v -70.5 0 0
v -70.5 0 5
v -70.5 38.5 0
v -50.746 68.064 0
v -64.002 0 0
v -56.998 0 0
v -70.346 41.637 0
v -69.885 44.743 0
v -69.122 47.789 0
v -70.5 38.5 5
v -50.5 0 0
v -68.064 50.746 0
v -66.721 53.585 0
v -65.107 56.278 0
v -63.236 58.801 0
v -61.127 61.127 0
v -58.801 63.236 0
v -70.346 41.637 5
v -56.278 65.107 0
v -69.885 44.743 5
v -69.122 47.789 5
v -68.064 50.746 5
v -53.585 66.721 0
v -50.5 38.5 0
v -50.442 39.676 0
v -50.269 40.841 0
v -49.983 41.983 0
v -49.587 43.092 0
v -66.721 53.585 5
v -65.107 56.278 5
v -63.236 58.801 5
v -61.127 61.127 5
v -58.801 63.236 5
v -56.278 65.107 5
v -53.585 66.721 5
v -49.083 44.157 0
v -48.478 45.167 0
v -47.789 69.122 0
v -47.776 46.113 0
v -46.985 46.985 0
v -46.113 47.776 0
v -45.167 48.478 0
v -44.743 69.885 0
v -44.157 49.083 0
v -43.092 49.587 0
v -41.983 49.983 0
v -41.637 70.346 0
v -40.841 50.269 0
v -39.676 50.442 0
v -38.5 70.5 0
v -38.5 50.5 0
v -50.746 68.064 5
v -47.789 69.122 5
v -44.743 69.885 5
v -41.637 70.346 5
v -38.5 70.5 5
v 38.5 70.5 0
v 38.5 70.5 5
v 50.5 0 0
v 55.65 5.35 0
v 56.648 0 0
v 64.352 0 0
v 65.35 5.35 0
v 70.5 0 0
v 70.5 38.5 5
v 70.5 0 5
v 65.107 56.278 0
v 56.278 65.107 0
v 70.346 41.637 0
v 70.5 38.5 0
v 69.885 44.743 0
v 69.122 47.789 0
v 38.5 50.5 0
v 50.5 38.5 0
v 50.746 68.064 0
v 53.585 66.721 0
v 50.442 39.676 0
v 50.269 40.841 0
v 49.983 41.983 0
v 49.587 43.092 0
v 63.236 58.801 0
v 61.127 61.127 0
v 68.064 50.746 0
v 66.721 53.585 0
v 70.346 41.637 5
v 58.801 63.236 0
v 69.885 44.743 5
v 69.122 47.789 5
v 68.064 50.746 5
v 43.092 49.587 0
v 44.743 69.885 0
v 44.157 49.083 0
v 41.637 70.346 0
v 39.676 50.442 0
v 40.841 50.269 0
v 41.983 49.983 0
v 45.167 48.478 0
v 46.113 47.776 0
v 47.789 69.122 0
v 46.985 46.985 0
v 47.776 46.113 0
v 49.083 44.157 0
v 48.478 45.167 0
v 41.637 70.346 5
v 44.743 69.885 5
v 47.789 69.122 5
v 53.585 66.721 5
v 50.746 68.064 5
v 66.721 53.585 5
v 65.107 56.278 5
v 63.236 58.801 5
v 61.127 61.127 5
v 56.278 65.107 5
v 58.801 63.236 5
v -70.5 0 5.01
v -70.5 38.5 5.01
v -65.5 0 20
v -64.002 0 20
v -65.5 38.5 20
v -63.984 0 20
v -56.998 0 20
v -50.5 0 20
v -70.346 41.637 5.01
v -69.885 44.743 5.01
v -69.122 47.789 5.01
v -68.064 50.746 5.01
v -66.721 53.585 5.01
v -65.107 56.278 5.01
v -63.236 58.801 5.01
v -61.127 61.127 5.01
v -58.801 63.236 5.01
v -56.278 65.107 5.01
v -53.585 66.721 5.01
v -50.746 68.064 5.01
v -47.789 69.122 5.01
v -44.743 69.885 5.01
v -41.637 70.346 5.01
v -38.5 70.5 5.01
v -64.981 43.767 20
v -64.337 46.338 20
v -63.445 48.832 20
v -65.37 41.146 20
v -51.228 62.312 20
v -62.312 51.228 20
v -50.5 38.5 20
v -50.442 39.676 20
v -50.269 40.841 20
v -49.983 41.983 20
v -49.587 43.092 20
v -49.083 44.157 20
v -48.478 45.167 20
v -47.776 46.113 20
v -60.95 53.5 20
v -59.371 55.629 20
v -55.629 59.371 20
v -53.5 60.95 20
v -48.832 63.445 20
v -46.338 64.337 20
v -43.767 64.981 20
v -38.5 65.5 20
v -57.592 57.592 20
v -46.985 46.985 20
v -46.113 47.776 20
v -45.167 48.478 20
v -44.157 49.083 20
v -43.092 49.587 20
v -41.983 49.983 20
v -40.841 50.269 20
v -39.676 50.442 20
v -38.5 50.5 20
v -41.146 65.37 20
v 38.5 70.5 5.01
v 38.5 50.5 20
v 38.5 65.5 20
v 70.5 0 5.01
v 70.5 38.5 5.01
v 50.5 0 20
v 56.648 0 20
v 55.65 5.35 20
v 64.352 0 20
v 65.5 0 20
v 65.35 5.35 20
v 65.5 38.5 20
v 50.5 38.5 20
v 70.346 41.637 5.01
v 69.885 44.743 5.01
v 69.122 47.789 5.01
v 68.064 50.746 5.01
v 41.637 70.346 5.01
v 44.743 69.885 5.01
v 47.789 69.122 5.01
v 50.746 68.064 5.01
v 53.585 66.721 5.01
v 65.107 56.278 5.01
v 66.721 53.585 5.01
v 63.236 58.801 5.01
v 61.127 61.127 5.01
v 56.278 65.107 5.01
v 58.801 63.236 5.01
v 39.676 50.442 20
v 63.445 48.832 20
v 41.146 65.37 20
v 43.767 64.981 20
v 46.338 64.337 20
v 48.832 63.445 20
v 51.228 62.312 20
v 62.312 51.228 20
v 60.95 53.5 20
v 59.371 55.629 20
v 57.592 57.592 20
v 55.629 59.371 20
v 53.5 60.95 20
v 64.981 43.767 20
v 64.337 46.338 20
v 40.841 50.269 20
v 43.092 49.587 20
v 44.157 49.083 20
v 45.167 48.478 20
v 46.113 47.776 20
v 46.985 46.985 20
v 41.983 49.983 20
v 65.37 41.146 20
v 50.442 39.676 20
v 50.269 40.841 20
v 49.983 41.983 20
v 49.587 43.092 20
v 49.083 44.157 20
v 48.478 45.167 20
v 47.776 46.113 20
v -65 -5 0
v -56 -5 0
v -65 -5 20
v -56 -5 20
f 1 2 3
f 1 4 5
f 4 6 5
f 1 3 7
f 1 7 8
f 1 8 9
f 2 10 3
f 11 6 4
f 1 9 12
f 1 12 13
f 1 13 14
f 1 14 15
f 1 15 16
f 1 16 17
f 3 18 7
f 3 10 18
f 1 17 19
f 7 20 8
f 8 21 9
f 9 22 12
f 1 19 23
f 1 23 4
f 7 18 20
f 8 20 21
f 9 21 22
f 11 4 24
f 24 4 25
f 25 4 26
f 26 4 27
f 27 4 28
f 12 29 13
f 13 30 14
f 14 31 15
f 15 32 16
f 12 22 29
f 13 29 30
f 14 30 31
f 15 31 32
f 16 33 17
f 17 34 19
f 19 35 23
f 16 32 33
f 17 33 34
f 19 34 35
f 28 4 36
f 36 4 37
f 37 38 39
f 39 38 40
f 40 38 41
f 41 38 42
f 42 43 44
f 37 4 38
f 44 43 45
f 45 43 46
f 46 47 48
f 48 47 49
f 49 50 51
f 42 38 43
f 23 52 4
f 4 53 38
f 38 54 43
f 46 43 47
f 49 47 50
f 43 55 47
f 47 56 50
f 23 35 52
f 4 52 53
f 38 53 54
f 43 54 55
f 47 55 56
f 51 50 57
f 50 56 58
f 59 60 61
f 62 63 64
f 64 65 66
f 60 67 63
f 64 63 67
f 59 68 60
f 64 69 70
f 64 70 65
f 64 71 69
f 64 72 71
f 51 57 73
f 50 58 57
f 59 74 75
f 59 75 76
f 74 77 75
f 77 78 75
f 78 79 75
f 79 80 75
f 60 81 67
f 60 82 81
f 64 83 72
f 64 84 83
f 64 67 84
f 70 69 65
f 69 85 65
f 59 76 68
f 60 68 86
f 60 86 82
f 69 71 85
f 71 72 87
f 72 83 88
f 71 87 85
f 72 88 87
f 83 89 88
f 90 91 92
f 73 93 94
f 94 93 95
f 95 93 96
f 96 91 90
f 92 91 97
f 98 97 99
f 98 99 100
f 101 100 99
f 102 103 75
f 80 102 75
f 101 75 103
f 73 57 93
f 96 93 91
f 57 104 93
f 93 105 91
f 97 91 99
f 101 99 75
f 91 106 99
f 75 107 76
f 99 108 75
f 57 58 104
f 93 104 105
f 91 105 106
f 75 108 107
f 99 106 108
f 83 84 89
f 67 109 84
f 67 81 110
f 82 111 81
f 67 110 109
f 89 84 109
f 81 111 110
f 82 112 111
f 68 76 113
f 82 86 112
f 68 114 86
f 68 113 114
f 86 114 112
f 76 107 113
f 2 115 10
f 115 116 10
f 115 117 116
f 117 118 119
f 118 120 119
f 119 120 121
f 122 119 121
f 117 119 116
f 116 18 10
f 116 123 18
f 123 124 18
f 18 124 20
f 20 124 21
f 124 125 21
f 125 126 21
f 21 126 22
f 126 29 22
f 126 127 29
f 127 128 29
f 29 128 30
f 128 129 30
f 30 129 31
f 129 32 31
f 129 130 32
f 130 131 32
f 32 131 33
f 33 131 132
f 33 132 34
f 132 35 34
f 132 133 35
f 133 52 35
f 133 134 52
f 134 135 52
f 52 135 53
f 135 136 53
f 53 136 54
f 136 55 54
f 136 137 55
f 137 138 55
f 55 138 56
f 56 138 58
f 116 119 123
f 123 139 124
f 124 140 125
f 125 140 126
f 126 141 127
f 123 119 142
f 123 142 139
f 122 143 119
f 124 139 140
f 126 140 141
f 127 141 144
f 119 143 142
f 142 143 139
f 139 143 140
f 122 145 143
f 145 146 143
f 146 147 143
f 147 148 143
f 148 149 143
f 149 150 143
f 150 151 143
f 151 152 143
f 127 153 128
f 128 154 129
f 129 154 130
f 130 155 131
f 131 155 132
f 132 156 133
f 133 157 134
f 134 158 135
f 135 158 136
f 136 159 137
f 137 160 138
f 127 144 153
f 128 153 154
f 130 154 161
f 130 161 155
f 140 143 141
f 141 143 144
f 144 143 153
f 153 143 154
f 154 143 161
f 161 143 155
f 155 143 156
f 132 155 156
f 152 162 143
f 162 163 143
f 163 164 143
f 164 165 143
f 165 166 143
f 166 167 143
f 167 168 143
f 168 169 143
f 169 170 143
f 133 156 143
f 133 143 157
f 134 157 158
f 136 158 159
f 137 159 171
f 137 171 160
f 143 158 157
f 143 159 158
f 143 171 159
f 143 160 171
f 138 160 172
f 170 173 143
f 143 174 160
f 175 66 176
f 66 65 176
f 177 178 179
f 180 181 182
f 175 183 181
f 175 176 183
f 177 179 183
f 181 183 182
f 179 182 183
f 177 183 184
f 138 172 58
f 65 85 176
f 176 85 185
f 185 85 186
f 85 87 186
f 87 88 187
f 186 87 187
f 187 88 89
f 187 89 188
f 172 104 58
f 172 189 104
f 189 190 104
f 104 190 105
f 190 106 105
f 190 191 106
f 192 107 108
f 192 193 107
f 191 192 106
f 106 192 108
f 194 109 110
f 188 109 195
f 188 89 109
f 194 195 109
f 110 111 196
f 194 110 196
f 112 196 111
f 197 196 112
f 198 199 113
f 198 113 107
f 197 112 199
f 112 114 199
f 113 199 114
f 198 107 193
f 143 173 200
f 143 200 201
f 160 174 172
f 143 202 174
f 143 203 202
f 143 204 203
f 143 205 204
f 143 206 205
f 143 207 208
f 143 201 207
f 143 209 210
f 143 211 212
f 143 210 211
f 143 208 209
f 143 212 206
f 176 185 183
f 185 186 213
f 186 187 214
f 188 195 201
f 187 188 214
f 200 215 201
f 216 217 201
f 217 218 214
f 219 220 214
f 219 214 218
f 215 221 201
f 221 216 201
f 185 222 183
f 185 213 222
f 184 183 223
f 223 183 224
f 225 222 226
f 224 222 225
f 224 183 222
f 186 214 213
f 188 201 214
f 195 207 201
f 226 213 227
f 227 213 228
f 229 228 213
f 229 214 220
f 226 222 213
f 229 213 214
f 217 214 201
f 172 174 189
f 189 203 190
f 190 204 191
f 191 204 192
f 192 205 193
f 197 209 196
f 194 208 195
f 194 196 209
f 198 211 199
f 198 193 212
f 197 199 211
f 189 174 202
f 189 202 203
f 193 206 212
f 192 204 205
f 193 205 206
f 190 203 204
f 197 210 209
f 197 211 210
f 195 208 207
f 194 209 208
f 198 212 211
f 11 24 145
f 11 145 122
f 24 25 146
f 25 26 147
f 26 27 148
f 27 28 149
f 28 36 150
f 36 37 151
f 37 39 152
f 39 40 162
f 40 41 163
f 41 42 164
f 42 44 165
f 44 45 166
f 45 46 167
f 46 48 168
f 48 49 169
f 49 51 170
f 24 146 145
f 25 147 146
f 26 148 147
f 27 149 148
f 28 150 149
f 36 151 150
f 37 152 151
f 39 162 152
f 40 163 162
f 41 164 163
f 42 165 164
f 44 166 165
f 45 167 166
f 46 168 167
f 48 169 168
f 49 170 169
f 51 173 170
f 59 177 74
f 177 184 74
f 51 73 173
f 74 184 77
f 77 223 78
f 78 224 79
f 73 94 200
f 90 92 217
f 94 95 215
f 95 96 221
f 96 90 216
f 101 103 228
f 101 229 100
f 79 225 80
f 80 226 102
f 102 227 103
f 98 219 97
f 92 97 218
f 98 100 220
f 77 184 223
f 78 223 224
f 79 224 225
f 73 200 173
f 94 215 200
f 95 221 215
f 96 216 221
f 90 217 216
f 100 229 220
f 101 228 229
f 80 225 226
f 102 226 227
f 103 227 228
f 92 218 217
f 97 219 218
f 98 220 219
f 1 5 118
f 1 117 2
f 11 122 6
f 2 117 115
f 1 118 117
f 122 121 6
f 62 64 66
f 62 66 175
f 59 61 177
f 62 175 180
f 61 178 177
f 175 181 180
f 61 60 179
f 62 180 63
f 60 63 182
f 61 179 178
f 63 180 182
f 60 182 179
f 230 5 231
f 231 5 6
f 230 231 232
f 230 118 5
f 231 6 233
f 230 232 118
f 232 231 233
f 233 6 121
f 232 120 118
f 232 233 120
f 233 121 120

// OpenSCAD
// Version: 0.05
// Description: Parametric dovetail molding with fixed subtraction logic.
// Post: 100x100mm (R10), Height: 20mm, Taper: 20mm (bottom) to 15mm (top).
// Printer: Bambulab A1, Basic PLA, Profile: 0.2mm Strength @BBLA1

// --- Main Parameters ---
post_width = 100;
post_radius = 12;
mold_height = 20;
thick_bottom = 20;
thick_top = 15;
taper_start = 5;

// --- Parametric Dovetail Settings ---
dt_depth = 5;          
dt_neck_width = 7;     
dt_flare_width = 9;    
joint_tol = 0.35;       
tolerance = 1;       

// Centering the dovetail in the bottom thickness
dovetail_x_pos = (post_width + tolerance) / 2 + (thick_bottom / 2);

$fn = 64;

// --- Modules ---
module rounded_square(w, r) {
    hull() {
        translate([-w/2 + r, -w/2 + r]) circle(r);
        translate([ w/2 - r, -w/2 + r]) circle(r);
        translate([-w/2 + r,  w/2 - r]) circle(r);
        translate([ w/2 - r,  w/2 - r]) circle(r);
    }
}

module male_dovetail() {
    linear_extrude(height = mold_height)
        polygon([
            [-dt_neck_width/2, 0.01], 
            [dt_neck_width/2, 0.01], 
            [dt_flare_width/2, -dt_depth], 
            [-dt_flare_width/2, -dt_depth]
        ]);
}

module female_dovetail() {
    // We use joint_tol to make the hole slightly larger than the male part
    // The cut goes from Y=0 into the positive Y direction
    translate([0, 0, -1])
        linear_extrude(height = mold_height + 2)
            polygon([
                [-(dt_neck_width/2 + joint_tol), -0.01],
                [(dt_neck_width/2 + joint_tol), -0.01],
                [(dt_flare_width/2 + joint_tol), dt_depth + joint_tol],
                [-(dt_flare_width/2 + joint_tol), dt_depth + joint_tol]
            ]);
}

module half_molding() {
    union() {
        difference() {
            // 1. Outer Shell
            union() {
                linear_extrude(height = taper_start)
                    rounded_square(post_width + tolerance + 2*thick_bottom, post_radius + thick_bottom);
                
                translate([0, 0, taper_start])
                    hull() {
                        linear_extrude(height = 0.01)
                            rounded_square(post_width + tolerance + 2*thick_bottom, post_radius + thick_bottom);
                        translate([0, 0, mold_height - taper_start - 0.01])
                            linear_extrude(height = 0.01)
                                rounded_square(post_width + tolerance + 2*thick_top, post_radius + thick_top);
                    }
            }
            
            // 2. Inner Post Void
            translate([0, 0, -1])
                linear_extrude(height = mold_height + 2)
                    rounded_square(post_width + tolerance, post_radius);
            
            // 3. Cut the whole thing in half along the X axis at Y=0
            translate([-500, -1000, -10]) 
                cube([1000, 1000, mold_height + 20]);
                
            // 4. Female Dovetail Cut (Right side)
            // Positioned at dovetail_x_pos, cutting "up" into the material (Positive Y)
            translate([dovetail_x_pos, 0, 0])
                female_dovetail();
        }
        
        // 5. Add Male Dovetail (Left side)
        // Positioned at -dovetail_x_pos, protruding "down" (Negative Y)
        translate([-dovetail_x_pos, 0, 0])
            male_dovetail();
    }
}

half_molding();
